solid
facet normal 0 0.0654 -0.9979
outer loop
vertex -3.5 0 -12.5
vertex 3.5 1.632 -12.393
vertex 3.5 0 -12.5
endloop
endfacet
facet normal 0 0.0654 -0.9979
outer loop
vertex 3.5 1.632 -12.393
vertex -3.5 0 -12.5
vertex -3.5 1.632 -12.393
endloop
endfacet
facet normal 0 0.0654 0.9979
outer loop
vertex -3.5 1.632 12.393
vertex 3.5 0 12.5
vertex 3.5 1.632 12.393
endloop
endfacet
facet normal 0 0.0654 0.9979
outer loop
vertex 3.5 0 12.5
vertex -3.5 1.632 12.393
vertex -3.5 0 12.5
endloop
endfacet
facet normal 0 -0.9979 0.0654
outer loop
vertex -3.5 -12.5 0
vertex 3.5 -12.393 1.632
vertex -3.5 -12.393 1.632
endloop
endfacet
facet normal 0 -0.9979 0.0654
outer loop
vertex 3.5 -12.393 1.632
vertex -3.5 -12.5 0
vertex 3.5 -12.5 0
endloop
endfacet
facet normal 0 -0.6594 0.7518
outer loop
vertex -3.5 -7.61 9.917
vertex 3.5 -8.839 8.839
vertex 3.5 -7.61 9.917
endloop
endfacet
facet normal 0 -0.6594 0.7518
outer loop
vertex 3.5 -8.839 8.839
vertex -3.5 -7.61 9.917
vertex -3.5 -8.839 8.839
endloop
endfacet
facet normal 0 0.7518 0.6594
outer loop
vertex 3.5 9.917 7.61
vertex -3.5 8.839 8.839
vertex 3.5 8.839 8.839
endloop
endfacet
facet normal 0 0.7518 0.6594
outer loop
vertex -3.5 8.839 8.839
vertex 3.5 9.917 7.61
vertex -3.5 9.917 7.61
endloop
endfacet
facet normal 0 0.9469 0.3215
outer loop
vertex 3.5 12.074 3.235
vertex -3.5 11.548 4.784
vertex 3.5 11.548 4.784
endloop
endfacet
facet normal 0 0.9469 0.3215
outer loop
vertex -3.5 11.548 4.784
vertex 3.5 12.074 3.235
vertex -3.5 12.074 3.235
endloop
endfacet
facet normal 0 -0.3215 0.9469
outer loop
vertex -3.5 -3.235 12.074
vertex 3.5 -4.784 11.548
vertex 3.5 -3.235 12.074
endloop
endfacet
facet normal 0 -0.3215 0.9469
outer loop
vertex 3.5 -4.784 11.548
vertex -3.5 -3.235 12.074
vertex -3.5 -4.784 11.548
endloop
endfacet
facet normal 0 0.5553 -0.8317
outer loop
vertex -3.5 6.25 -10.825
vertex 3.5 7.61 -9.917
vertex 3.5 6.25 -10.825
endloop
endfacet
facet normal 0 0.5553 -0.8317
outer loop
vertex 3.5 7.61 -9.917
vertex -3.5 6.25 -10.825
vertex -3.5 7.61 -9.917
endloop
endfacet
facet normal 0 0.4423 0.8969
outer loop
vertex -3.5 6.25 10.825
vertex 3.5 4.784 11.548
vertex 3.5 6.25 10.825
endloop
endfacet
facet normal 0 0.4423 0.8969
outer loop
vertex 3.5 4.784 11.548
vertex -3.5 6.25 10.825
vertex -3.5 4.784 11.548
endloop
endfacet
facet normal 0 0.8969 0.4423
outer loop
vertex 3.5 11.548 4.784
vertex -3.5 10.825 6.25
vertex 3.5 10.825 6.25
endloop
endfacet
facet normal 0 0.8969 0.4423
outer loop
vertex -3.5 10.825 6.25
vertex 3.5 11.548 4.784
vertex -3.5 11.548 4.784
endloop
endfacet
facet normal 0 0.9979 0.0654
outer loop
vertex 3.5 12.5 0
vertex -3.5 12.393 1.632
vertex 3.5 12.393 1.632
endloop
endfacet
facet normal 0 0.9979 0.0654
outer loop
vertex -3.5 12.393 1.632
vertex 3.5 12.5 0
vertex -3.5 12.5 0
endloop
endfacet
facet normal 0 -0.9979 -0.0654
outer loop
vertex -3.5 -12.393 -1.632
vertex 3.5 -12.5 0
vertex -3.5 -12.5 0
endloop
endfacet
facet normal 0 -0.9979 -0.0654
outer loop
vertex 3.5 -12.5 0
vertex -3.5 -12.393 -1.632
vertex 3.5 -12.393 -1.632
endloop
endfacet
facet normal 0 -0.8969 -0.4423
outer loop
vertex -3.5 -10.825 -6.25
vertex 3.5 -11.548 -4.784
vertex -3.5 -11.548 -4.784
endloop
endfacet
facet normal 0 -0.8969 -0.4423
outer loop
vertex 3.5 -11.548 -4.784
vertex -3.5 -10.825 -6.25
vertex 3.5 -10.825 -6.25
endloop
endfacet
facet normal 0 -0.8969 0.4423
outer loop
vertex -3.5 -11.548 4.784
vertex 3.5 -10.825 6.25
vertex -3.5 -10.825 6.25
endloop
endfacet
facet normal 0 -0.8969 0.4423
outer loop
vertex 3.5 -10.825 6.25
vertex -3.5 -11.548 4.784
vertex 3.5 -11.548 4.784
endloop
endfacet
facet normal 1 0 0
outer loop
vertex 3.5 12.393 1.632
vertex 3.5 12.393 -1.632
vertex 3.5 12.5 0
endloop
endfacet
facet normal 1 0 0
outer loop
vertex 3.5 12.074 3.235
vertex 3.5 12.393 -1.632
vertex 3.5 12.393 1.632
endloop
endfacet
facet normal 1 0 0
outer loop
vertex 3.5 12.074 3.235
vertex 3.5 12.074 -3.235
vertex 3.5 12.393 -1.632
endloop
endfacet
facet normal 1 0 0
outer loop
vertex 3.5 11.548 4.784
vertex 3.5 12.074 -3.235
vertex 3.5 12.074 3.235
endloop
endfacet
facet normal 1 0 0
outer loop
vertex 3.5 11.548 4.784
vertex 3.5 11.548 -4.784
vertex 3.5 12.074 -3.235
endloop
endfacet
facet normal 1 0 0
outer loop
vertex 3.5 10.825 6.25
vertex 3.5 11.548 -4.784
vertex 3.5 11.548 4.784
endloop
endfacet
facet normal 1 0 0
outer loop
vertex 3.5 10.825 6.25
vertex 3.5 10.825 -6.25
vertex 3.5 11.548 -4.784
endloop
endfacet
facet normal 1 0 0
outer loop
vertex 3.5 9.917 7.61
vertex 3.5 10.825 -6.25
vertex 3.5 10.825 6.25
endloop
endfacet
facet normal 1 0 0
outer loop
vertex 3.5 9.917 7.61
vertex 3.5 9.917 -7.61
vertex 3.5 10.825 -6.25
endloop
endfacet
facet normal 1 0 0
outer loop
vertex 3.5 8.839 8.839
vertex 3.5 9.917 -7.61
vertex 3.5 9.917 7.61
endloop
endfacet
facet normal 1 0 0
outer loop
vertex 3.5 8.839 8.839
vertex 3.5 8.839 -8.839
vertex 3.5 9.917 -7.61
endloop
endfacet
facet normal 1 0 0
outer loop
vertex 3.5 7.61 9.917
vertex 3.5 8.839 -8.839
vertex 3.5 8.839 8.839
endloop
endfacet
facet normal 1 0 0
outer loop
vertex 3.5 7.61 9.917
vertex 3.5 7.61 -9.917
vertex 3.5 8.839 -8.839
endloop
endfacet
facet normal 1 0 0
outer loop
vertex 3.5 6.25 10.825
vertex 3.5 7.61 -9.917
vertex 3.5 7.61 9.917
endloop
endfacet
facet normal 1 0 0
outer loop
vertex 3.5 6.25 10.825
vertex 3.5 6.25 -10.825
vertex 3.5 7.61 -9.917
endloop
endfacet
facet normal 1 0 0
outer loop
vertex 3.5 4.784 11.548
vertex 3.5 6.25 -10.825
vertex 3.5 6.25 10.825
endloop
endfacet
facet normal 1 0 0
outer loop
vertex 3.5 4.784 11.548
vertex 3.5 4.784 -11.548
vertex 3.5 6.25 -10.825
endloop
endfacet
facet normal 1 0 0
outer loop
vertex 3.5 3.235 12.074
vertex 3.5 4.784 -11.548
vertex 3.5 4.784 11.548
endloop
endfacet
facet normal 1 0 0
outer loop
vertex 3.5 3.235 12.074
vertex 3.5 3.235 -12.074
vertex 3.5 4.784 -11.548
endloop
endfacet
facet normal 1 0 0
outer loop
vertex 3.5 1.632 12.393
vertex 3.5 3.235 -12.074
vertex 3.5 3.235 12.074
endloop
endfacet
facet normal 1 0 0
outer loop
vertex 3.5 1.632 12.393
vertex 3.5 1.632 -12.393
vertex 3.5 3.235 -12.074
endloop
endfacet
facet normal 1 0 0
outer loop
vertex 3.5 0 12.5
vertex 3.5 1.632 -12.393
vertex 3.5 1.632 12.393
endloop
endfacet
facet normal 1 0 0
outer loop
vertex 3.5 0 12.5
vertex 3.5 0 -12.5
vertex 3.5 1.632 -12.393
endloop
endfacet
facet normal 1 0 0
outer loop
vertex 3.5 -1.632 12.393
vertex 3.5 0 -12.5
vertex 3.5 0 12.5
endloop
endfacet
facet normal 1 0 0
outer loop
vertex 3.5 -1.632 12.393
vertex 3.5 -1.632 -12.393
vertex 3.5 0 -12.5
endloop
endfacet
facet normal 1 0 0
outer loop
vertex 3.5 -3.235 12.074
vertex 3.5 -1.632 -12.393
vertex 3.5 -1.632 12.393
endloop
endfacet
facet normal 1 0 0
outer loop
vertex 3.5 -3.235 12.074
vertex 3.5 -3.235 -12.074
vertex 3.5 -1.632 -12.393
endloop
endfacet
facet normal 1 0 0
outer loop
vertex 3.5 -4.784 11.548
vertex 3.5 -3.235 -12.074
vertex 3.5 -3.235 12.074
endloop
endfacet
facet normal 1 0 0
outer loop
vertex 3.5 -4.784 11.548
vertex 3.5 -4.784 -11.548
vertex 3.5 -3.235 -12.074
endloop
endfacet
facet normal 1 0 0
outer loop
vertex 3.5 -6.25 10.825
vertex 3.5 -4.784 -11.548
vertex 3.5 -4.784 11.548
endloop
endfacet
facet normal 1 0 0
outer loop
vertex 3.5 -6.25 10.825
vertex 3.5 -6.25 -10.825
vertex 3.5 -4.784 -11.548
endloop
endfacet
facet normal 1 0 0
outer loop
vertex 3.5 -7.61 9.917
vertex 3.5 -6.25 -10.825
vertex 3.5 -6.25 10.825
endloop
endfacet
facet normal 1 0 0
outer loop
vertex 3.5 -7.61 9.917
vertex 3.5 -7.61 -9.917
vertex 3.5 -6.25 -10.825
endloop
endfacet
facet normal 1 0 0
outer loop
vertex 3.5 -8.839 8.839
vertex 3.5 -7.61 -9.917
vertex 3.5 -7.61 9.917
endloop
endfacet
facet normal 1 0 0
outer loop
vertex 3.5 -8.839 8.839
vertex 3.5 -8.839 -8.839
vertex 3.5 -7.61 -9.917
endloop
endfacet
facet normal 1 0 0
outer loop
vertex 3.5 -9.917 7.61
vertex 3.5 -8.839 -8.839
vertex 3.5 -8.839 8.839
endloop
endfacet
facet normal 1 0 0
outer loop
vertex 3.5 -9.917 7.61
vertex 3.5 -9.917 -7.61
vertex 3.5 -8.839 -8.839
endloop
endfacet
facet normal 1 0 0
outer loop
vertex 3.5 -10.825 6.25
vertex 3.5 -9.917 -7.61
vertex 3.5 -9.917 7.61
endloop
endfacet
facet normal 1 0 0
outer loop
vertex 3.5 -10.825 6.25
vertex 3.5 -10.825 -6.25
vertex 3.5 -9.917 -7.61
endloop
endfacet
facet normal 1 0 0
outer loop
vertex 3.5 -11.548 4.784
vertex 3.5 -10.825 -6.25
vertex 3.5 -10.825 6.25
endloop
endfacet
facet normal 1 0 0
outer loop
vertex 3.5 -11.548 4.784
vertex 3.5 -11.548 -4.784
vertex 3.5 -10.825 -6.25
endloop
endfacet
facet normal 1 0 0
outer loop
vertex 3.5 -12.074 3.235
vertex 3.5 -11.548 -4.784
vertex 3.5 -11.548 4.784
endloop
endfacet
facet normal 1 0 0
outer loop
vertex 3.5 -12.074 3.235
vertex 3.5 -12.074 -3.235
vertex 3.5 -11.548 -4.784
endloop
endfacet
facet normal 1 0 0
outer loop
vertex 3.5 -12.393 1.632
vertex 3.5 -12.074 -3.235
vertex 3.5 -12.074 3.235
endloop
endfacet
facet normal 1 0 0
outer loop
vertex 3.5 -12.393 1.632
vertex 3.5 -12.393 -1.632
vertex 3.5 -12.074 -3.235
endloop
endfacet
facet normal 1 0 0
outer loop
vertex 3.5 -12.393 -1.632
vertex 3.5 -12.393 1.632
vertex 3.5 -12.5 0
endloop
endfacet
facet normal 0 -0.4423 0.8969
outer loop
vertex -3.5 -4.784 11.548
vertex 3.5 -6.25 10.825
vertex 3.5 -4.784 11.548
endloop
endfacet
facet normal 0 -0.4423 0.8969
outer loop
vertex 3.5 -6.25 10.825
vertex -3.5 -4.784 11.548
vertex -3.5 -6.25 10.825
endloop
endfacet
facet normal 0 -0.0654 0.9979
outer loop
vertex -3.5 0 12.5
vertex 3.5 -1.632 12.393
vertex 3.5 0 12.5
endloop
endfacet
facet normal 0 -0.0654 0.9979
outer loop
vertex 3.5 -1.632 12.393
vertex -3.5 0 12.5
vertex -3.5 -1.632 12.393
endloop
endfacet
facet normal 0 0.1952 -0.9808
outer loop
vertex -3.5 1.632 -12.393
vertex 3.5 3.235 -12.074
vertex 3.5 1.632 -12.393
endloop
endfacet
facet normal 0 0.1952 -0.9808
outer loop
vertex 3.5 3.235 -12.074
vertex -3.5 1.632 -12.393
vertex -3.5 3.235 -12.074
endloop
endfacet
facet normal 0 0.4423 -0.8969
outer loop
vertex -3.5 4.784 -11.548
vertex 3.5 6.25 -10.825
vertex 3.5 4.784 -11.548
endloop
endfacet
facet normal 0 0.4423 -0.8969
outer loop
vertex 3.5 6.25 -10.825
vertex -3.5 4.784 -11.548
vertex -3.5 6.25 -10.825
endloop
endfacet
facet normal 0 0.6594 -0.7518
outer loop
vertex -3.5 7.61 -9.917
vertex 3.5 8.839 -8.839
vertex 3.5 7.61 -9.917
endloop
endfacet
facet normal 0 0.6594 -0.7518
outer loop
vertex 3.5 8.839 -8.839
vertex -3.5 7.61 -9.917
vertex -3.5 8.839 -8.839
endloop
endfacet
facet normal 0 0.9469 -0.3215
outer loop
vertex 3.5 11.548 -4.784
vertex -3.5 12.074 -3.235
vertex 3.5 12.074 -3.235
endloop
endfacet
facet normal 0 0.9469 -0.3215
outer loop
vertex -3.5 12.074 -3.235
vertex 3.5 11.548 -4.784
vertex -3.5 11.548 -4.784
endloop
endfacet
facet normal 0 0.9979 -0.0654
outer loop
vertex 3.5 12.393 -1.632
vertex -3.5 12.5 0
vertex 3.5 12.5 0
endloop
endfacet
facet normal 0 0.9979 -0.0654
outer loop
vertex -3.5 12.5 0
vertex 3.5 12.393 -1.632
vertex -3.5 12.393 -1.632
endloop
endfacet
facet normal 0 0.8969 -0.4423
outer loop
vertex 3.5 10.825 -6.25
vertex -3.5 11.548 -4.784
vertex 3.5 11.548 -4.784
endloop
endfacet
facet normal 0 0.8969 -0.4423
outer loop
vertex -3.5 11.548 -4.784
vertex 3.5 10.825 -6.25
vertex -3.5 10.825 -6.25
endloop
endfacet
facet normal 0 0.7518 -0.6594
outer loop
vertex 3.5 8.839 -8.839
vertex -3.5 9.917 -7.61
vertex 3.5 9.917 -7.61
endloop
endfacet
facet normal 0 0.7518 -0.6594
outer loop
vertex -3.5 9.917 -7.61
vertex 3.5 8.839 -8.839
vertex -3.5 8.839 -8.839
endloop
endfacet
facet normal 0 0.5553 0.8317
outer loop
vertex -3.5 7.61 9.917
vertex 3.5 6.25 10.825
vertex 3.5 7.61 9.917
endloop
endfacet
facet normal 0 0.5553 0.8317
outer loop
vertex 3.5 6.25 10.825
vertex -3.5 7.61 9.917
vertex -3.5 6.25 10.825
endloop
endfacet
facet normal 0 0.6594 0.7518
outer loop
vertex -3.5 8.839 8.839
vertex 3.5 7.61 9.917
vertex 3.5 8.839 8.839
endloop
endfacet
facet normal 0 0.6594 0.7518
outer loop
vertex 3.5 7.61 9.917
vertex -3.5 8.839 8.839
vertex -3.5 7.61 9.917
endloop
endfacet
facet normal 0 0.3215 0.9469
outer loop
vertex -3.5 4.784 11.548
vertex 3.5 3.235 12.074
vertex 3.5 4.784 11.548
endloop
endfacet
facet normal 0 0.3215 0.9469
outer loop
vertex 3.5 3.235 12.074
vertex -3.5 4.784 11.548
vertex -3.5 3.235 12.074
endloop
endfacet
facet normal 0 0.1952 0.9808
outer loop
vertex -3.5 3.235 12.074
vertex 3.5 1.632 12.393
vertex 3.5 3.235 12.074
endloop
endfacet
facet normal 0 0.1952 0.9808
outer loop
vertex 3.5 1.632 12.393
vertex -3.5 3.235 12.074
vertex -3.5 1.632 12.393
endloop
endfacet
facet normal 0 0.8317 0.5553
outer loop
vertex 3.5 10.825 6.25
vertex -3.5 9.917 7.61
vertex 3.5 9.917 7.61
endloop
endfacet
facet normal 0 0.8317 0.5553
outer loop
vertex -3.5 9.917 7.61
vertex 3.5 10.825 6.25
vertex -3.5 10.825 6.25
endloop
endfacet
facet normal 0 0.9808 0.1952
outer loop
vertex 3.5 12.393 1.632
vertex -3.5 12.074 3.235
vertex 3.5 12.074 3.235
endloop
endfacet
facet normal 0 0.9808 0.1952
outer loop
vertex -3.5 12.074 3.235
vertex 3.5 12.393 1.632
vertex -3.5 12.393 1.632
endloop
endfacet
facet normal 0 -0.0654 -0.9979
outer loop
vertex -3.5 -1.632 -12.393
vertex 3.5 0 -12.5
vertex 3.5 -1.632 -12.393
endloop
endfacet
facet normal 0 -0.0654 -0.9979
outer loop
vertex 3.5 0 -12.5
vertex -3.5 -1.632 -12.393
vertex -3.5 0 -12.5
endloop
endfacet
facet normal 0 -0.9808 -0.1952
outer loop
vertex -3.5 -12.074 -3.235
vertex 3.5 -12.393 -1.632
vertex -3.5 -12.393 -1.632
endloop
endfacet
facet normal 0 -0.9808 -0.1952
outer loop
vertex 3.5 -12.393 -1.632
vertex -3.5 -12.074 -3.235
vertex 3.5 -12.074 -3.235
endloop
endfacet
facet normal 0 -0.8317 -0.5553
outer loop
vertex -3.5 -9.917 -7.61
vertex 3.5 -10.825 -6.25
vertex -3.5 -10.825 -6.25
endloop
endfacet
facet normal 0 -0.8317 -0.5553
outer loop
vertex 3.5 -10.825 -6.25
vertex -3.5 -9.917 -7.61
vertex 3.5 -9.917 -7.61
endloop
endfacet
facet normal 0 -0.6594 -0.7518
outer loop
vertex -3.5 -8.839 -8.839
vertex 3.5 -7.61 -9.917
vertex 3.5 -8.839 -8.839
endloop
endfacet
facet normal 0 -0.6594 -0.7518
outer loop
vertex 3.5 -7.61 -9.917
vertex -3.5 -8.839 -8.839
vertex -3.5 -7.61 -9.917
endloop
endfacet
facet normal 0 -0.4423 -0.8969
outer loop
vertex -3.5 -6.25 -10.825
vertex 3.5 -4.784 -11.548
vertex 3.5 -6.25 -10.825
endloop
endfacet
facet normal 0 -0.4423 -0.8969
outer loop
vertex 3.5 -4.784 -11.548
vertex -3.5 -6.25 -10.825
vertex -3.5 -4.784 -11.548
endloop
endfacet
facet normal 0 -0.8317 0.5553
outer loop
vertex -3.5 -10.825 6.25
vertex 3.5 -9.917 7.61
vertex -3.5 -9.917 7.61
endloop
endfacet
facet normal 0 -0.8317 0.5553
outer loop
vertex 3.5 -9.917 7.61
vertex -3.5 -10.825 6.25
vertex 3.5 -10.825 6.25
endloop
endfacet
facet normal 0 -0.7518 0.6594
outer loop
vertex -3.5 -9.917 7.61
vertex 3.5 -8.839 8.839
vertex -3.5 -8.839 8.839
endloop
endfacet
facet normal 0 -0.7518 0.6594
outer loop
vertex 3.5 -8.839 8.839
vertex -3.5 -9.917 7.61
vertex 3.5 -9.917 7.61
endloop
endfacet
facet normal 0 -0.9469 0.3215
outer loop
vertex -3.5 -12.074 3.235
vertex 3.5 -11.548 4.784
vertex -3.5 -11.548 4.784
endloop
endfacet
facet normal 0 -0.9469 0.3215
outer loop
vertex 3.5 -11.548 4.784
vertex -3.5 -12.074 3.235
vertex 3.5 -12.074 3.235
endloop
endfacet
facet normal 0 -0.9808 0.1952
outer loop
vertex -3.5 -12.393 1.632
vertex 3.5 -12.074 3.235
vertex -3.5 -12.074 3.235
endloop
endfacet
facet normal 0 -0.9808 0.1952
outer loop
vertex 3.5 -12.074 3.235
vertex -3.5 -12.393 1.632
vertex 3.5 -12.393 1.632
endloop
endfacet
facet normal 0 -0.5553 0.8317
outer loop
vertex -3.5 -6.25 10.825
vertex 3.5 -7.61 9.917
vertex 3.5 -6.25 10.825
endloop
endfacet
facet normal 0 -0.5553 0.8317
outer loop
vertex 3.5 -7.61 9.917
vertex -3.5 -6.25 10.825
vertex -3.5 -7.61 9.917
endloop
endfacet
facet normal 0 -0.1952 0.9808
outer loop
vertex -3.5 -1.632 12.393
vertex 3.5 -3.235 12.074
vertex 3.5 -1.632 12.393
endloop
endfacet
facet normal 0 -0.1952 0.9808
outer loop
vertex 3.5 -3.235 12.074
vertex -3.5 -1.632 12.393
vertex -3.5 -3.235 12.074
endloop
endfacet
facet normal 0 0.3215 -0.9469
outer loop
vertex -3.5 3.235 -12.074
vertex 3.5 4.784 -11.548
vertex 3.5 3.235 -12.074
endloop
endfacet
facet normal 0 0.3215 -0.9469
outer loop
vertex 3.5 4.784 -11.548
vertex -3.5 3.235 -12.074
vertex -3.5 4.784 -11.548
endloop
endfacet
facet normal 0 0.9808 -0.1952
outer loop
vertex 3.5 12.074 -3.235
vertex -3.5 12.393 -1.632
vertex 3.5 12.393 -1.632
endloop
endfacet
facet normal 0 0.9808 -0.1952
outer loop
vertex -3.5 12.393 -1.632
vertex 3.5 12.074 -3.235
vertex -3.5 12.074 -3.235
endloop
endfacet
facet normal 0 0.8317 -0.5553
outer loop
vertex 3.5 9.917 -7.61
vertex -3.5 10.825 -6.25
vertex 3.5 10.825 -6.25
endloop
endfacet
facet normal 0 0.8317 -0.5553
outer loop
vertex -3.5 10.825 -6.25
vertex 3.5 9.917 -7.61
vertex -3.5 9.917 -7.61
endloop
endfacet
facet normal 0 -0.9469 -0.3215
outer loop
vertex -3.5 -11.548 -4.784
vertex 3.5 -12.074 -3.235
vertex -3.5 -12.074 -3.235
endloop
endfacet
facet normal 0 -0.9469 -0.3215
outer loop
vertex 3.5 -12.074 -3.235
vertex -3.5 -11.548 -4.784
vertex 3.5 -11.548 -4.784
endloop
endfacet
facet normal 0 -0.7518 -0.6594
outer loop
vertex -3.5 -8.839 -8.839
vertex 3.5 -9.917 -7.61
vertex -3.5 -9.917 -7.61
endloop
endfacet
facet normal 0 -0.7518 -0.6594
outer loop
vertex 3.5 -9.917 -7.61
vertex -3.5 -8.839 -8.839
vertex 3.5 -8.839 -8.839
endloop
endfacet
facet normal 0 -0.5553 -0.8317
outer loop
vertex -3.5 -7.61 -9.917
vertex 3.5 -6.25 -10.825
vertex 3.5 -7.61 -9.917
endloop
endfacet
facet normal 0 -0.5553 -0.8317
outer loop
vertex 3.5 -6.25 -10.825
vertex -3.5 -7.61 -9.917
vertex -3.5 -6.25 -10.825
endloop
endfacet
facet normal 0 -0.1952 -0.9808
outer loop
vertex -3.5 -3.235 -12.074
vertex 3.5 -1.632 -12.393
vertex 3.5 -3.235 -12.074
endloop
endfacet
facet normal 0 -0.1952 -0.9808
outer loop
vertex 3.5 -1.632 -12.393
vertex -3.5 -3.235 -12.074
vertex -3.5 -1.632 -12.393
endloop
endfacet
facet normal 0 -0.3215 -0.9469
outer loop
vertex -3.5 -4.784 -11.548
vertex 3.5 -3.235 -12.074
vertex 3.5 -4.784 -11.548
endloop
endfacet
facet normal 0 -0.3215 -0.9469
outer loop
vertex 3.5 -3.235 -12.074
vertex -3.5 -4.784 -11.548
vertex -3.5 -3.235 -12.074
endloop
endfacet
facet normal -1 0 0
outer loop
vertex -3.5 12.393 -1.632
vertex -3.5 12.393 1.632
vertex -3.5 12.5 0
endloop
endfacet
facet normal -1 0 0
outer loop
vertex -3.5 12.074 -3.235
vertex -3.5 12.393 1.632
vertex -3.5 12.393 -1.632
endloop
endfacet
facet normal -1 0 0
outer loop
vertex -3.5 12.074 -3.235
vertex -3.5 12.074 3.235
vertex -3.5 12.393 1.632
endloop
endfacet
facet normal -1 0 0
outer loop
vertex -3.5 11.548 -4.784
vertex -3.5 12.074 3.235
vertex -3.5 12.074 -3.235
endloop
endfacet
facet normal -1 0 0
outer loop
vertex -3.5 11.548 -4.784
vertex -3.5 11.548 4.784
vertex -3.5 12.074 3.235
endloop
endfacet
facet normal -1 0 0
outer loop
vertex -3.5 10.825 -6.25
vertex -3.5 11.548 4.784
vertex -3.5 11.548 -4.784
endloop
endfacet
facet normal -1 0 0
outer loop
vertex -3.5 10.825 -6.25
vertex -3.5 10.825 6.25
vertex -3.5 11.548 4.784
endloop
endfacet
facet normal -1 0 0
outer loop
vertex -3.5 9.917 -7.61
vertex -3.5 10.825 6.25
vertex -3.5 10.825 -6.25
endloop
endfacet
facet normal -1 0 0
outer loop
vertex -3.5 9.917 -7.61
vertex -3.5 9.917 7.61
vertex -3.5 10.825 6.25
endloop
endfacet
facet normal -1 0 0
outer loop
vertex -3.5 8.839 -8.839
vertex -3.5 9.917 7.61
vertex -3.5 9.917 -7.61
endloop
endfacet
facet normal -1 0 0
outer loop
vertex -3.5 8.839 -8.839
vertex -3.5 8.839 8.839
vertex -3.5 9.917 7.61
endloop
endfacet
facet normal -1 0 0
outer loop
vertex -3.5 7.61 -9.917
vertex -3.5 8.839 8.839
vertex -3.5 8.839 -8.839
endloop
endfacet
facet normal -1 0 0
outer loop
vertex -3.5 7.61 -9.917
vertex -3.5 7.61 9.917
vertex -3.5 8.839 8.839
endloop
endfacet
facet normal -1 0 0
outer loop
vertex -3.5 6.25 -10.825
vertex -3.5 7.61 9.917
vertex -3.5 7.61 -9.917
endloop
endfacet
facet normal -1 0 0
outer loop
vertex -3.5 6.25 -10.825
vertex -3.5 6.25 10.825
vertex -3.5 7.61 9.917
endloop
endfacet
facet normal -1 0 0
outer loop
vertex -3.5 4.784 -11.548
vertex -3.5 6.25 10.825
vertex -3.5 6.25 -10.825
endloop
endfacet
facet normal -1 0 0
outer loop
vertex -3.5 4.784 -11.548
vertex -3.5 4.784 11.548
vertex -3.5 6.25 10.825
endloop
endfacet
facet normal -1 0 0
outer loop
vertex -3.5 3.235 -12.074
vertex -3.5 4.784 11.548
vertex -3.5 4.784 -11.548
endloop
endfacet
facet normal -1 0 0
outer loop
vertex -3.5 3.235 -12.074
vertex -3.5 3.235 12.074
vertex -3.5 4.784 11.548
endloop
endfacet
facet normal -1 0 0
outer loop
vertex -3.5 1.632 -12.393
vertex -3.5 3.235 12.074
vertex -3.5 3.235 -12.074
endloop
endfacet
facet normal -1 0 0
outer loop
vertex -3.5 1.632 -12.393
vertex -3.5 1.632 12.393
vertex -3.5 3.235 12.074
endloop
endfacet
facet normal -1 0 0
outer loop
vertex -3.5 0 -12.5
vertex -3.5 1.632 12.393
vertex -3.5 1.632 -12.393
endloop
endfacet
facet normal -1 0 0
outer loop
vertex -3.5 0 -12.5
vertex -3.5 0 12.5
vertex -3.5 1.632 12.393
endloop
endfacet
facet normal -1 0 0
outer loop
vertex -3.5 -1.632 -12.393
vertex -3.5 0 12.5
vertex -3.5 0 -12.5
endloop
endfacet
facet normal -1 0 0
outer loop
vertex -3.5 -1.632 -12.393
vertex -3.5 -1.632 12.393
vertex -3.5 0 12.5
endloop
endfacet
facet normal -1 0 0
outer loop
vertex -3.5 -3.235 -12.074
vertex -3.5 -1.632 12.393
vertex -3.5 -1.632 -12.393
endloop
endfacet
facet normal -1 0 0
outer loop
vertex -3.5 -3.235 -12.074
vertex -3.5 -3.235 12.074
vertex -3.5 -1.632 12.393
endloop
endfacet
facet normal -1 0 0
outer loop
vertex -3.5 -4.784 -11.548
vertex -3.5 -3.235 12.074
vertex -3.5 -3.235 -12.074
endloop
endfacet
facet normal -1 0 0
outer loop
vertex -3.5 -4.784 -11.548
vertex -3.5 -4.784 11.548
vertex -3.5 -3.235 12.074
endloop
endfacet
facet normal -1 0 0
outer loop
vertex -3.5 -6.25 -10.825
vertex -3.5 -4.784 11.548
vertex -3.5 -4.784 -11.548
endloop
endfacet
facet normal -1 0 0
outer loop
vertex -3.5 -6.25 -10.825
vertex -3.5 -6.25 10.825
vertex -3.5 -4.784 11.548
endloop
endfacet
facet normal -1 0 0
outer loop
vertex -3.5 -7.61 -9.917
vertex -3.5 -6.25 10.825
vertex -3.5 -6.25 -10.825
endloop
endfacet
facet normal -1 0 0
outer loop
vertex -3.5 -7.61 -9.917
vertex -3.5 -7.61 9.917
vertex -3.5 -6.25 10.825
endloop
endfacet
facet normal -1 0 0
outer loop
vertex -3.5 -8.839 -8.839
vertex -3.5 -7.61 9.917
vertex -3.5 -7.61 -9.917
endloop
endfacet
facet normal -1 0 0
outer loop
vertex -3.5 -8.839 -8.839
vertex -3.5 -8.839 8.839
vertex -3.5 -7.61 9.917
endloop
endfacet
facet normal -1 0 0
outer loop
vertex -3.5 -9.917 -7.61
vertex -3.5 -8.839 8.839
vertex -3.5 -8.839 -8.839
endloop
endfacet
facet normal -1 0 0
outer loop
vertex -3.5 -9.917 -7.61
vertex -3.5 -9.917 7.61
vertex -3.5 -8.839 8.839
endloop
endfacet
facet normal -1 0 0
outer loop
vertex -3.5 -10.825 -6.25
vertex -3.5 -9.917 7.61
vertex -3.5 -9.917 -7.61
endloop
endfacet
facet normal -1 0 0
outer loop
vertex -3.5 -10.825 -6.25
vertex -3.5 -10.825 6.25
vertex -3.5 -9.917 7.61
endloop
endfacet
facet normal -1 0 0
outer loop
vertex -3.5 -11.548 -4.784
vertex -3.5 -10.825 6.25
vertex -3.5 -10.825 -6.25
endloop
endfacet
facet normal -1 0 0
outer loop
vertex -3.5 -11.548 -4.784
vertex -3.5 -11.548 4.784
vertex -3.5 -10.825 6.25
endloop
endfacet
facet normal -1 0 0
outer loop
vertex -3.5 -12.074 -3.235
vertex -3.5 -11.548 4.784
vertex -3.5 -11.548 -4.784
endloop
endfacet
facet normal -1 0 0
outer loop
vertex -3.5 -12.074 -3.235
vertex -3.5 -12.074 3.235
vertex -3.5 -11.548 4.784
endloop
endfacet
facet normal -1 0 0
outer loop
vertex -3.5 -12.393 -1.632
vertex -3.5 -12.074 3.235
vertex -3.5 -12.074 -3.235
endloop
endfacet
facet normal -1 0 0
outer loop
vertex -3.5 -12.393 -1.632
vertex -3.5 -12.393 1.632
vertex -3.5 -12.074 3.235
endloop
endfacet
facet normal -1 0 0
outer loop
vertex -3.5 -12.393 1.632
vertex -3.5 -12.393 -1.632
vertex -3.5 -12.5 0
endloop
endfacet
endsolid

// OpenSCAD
$fn = 48;
INNER_SPAN = 113.0;
X_FLANGE_IN_L = -INNER_SPAN / 2.0;
X_FLANGE_IN_R = +INNER_SPAN / 2.0;
MOTOR_ENC_L = 60.0;
MOTOR_D = 25.0;

intersection() {
    translate([X_FLANGE_IN_L, 0, 0])
        rotate([0, 90, 0])
            cylinder(d=MOTOR_D, h=MOTOR_ENC_L);
    
    translate([X_FLANGE_IN_R - MOTOR_ENC_L, 0, 0])
        rotate([0, 90, 0])
            cylinder(d=MOTOR_D, h=MOTOR_ENC_L);
}
